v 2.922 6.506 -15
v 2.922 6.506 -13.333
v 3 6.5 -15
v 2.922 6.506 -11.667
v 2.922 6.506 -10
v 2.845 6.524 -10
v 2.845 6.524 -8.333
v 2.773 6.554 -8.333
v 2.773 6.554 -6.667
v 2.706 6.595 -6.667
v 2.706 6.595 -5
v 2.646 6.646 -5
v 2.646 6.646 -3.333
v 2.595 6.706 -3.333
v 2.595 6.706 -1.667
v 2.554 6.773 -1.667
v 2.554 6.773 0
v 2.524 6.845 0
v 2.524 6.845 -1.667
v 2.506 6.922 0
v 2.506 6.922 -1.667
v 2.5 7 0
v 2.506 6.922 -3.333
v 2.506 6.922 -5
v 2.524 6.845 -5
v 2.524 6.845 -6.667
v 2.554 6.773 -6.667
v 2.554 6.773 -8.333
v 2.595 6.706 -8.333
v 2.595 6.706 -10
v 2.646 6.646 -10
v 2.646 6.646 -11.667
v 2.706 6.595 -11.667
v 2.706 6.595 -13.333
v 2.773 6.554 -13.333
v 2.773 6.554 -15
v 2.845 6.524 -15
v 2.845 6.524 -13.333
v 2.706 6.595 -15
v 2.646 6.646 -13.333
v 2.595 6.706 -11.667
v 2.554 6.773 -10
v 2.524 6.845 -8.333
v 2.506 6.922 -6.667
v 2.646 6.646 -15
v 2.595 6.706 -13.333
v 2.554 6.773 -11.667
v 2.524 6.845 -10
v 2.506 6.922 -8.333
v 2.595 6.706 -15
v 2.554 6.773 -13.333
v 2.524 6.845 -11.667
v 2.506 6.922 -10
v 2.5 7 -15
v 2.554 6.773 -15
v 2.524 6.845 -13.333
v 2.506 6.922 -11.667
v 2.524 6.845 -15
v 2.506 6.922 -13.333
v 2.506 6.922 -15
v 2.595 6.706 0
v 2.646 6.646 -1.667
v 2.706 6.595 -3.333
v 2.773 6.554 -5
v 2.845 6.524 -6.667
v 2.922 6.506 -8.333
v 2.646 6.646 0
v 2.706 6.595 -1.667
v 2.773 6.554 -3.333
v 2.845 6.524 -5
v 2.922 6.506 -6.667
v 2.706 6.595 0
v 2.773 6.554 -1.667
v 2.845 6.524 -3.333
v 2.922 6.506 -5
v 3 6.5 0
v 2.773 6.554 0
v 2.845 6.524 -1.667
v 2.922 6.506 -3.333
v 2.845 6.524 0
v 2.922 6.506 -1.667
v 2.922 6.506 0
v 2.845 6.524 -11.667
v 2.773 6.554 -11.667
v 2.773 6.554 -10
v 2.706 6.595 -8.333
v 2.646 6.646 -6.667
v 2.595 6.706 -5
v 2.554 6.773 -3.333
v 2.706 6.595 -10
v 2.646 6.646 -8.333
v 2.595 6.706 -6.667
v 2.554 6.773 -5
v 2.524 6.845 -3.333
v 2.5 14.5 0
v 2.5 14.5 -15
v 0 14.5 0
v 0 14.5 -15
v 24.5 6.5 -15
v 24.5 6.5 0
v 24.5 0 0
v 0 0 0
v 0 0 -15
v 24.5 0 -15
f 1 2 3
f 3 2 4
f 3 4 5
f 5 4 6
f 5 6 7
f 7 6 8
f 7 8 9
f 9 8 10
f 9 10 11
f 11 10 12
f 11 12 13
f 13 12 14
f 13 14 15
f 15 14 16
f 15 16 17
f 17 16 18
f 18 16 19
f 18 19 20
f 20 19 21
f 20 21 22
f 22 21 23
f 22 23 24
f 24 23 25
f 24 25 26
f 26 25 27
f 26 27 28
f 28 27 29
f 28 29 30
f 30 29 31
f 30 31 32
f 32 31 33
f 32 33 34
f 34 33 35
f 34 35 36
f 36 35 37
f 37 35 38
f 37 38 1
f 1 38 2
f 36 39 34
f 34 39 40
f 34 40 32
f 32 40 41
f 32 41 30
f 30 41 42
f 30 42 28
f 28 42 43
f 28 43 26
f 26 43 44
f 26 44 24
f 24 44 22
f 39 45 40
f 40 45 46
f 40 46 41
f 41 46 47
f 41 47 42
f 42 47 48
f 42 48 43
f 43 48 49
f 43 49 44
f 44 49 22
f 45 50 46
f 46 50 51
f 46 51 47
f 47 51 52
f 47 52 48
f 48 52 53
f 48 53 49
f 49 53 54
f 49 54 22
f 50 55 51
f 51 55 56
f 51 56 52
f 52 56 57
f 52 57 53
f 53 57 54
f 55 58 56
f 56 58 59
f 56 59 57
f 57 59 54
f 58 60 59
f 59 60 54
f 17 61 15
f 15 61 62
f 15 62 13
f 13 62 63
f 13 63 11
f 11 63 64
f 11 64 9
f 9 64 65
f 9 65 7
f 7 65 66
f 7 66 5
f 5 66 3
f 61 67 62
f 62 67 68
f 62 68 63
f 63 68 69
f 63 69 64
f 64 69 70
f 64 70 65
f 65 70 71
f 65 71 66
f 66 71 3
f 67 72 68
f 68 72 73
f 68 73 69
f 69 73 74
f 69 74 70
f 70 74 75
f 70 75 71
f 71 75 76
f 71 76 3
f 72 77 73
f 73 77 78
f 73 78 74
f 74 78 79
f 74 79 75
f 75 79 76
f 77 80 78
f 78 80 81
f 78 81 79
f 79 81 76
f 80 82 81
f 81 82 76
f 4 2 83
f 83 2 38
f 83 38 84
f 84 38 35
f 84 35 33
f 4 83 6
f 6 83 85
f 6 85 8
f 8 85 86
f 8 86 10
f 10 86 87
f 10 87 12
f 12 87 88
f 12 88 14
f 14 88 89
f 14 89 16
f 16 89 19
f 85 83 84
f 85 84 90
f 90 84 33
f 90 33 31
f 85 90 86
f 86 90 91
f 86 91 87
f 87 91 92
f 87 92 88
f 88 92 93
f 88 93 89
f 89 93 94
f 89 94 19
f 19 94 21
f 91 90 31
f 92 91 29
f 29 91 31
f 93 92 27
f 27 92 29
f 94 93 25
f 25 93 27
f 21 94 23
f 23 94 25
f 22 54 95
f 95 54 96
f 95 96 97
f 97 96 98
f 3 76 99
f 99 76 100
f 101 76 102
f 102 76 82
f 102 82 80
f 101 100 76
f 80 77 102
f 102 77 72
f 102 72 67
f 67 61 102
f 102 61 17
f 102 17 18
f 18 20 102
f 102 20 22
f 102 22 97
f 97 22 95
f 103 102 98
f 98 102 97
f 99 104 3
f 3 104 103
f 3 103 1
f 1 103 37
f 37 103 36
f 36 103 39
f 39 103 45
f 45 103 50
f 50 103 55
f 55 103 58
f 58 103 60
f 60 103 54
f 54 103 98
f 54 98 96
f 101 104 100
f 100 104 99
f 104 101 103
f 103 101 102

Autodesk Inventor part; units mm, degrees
ref_plane "YZ Plane" through (0, 0, 0) normal (1, 0, 0) x (0, 1, 0)
ref_plane "XZ Plane" through (0, 0, 0) normal (0, 1, 0) x (-1, 0, 0)
ref_plane "XY Plane" through (0, 0, 0) normal (0, 0, 1) x (1, 0, 0)
sketch "Sketch1" plane through (0, 0, 0) normal (0, 1, 0) x (-1, 0, 0)
  point P0 (0, 0)
sketch "Sketch2" plane through (0, 0, 0) normal (0, 1, 0) x (-1, 0, 0)
  line L0 (0, 0) -> (-24.5, 0)
  line L1 (-24.5, 0) -> (-24.5, -15)
  line L2 (-24.5, -15) -> (0, -15)
  line L3 (0, -15) -> (0, 0)
  dimension "d0" = 24.5
  dimension "d1" = 15
extrude "Extrusion1" add sketch "Sketch2" along normal blind 6.5
sketch "Sketch3" plane through (0, 6.5, 0) normal (0, 1, 0) x (1, 0, 0)
  line L0 (0, 15) -> (0, 0) projected
  line L1 (24.5, 15) -> (0, 15) projected
  line L2 (0, 0) -> (2.5, 0)
  line L3 (2.5, 0) -> (2.5, 15)
  line L4 (2.5, 15) -> (0, 15)
  line L5 (0, 15) -> (0, 0)
  dimension "d4" = 2.5
extrude "Extrusion2" add sketch "Sketch3" along normal blind 8
fillet "Fillet1" radius 0.5 1 edges at (2.5, 6.5, -7.5)
properties part number "small_microswitch_holder"
